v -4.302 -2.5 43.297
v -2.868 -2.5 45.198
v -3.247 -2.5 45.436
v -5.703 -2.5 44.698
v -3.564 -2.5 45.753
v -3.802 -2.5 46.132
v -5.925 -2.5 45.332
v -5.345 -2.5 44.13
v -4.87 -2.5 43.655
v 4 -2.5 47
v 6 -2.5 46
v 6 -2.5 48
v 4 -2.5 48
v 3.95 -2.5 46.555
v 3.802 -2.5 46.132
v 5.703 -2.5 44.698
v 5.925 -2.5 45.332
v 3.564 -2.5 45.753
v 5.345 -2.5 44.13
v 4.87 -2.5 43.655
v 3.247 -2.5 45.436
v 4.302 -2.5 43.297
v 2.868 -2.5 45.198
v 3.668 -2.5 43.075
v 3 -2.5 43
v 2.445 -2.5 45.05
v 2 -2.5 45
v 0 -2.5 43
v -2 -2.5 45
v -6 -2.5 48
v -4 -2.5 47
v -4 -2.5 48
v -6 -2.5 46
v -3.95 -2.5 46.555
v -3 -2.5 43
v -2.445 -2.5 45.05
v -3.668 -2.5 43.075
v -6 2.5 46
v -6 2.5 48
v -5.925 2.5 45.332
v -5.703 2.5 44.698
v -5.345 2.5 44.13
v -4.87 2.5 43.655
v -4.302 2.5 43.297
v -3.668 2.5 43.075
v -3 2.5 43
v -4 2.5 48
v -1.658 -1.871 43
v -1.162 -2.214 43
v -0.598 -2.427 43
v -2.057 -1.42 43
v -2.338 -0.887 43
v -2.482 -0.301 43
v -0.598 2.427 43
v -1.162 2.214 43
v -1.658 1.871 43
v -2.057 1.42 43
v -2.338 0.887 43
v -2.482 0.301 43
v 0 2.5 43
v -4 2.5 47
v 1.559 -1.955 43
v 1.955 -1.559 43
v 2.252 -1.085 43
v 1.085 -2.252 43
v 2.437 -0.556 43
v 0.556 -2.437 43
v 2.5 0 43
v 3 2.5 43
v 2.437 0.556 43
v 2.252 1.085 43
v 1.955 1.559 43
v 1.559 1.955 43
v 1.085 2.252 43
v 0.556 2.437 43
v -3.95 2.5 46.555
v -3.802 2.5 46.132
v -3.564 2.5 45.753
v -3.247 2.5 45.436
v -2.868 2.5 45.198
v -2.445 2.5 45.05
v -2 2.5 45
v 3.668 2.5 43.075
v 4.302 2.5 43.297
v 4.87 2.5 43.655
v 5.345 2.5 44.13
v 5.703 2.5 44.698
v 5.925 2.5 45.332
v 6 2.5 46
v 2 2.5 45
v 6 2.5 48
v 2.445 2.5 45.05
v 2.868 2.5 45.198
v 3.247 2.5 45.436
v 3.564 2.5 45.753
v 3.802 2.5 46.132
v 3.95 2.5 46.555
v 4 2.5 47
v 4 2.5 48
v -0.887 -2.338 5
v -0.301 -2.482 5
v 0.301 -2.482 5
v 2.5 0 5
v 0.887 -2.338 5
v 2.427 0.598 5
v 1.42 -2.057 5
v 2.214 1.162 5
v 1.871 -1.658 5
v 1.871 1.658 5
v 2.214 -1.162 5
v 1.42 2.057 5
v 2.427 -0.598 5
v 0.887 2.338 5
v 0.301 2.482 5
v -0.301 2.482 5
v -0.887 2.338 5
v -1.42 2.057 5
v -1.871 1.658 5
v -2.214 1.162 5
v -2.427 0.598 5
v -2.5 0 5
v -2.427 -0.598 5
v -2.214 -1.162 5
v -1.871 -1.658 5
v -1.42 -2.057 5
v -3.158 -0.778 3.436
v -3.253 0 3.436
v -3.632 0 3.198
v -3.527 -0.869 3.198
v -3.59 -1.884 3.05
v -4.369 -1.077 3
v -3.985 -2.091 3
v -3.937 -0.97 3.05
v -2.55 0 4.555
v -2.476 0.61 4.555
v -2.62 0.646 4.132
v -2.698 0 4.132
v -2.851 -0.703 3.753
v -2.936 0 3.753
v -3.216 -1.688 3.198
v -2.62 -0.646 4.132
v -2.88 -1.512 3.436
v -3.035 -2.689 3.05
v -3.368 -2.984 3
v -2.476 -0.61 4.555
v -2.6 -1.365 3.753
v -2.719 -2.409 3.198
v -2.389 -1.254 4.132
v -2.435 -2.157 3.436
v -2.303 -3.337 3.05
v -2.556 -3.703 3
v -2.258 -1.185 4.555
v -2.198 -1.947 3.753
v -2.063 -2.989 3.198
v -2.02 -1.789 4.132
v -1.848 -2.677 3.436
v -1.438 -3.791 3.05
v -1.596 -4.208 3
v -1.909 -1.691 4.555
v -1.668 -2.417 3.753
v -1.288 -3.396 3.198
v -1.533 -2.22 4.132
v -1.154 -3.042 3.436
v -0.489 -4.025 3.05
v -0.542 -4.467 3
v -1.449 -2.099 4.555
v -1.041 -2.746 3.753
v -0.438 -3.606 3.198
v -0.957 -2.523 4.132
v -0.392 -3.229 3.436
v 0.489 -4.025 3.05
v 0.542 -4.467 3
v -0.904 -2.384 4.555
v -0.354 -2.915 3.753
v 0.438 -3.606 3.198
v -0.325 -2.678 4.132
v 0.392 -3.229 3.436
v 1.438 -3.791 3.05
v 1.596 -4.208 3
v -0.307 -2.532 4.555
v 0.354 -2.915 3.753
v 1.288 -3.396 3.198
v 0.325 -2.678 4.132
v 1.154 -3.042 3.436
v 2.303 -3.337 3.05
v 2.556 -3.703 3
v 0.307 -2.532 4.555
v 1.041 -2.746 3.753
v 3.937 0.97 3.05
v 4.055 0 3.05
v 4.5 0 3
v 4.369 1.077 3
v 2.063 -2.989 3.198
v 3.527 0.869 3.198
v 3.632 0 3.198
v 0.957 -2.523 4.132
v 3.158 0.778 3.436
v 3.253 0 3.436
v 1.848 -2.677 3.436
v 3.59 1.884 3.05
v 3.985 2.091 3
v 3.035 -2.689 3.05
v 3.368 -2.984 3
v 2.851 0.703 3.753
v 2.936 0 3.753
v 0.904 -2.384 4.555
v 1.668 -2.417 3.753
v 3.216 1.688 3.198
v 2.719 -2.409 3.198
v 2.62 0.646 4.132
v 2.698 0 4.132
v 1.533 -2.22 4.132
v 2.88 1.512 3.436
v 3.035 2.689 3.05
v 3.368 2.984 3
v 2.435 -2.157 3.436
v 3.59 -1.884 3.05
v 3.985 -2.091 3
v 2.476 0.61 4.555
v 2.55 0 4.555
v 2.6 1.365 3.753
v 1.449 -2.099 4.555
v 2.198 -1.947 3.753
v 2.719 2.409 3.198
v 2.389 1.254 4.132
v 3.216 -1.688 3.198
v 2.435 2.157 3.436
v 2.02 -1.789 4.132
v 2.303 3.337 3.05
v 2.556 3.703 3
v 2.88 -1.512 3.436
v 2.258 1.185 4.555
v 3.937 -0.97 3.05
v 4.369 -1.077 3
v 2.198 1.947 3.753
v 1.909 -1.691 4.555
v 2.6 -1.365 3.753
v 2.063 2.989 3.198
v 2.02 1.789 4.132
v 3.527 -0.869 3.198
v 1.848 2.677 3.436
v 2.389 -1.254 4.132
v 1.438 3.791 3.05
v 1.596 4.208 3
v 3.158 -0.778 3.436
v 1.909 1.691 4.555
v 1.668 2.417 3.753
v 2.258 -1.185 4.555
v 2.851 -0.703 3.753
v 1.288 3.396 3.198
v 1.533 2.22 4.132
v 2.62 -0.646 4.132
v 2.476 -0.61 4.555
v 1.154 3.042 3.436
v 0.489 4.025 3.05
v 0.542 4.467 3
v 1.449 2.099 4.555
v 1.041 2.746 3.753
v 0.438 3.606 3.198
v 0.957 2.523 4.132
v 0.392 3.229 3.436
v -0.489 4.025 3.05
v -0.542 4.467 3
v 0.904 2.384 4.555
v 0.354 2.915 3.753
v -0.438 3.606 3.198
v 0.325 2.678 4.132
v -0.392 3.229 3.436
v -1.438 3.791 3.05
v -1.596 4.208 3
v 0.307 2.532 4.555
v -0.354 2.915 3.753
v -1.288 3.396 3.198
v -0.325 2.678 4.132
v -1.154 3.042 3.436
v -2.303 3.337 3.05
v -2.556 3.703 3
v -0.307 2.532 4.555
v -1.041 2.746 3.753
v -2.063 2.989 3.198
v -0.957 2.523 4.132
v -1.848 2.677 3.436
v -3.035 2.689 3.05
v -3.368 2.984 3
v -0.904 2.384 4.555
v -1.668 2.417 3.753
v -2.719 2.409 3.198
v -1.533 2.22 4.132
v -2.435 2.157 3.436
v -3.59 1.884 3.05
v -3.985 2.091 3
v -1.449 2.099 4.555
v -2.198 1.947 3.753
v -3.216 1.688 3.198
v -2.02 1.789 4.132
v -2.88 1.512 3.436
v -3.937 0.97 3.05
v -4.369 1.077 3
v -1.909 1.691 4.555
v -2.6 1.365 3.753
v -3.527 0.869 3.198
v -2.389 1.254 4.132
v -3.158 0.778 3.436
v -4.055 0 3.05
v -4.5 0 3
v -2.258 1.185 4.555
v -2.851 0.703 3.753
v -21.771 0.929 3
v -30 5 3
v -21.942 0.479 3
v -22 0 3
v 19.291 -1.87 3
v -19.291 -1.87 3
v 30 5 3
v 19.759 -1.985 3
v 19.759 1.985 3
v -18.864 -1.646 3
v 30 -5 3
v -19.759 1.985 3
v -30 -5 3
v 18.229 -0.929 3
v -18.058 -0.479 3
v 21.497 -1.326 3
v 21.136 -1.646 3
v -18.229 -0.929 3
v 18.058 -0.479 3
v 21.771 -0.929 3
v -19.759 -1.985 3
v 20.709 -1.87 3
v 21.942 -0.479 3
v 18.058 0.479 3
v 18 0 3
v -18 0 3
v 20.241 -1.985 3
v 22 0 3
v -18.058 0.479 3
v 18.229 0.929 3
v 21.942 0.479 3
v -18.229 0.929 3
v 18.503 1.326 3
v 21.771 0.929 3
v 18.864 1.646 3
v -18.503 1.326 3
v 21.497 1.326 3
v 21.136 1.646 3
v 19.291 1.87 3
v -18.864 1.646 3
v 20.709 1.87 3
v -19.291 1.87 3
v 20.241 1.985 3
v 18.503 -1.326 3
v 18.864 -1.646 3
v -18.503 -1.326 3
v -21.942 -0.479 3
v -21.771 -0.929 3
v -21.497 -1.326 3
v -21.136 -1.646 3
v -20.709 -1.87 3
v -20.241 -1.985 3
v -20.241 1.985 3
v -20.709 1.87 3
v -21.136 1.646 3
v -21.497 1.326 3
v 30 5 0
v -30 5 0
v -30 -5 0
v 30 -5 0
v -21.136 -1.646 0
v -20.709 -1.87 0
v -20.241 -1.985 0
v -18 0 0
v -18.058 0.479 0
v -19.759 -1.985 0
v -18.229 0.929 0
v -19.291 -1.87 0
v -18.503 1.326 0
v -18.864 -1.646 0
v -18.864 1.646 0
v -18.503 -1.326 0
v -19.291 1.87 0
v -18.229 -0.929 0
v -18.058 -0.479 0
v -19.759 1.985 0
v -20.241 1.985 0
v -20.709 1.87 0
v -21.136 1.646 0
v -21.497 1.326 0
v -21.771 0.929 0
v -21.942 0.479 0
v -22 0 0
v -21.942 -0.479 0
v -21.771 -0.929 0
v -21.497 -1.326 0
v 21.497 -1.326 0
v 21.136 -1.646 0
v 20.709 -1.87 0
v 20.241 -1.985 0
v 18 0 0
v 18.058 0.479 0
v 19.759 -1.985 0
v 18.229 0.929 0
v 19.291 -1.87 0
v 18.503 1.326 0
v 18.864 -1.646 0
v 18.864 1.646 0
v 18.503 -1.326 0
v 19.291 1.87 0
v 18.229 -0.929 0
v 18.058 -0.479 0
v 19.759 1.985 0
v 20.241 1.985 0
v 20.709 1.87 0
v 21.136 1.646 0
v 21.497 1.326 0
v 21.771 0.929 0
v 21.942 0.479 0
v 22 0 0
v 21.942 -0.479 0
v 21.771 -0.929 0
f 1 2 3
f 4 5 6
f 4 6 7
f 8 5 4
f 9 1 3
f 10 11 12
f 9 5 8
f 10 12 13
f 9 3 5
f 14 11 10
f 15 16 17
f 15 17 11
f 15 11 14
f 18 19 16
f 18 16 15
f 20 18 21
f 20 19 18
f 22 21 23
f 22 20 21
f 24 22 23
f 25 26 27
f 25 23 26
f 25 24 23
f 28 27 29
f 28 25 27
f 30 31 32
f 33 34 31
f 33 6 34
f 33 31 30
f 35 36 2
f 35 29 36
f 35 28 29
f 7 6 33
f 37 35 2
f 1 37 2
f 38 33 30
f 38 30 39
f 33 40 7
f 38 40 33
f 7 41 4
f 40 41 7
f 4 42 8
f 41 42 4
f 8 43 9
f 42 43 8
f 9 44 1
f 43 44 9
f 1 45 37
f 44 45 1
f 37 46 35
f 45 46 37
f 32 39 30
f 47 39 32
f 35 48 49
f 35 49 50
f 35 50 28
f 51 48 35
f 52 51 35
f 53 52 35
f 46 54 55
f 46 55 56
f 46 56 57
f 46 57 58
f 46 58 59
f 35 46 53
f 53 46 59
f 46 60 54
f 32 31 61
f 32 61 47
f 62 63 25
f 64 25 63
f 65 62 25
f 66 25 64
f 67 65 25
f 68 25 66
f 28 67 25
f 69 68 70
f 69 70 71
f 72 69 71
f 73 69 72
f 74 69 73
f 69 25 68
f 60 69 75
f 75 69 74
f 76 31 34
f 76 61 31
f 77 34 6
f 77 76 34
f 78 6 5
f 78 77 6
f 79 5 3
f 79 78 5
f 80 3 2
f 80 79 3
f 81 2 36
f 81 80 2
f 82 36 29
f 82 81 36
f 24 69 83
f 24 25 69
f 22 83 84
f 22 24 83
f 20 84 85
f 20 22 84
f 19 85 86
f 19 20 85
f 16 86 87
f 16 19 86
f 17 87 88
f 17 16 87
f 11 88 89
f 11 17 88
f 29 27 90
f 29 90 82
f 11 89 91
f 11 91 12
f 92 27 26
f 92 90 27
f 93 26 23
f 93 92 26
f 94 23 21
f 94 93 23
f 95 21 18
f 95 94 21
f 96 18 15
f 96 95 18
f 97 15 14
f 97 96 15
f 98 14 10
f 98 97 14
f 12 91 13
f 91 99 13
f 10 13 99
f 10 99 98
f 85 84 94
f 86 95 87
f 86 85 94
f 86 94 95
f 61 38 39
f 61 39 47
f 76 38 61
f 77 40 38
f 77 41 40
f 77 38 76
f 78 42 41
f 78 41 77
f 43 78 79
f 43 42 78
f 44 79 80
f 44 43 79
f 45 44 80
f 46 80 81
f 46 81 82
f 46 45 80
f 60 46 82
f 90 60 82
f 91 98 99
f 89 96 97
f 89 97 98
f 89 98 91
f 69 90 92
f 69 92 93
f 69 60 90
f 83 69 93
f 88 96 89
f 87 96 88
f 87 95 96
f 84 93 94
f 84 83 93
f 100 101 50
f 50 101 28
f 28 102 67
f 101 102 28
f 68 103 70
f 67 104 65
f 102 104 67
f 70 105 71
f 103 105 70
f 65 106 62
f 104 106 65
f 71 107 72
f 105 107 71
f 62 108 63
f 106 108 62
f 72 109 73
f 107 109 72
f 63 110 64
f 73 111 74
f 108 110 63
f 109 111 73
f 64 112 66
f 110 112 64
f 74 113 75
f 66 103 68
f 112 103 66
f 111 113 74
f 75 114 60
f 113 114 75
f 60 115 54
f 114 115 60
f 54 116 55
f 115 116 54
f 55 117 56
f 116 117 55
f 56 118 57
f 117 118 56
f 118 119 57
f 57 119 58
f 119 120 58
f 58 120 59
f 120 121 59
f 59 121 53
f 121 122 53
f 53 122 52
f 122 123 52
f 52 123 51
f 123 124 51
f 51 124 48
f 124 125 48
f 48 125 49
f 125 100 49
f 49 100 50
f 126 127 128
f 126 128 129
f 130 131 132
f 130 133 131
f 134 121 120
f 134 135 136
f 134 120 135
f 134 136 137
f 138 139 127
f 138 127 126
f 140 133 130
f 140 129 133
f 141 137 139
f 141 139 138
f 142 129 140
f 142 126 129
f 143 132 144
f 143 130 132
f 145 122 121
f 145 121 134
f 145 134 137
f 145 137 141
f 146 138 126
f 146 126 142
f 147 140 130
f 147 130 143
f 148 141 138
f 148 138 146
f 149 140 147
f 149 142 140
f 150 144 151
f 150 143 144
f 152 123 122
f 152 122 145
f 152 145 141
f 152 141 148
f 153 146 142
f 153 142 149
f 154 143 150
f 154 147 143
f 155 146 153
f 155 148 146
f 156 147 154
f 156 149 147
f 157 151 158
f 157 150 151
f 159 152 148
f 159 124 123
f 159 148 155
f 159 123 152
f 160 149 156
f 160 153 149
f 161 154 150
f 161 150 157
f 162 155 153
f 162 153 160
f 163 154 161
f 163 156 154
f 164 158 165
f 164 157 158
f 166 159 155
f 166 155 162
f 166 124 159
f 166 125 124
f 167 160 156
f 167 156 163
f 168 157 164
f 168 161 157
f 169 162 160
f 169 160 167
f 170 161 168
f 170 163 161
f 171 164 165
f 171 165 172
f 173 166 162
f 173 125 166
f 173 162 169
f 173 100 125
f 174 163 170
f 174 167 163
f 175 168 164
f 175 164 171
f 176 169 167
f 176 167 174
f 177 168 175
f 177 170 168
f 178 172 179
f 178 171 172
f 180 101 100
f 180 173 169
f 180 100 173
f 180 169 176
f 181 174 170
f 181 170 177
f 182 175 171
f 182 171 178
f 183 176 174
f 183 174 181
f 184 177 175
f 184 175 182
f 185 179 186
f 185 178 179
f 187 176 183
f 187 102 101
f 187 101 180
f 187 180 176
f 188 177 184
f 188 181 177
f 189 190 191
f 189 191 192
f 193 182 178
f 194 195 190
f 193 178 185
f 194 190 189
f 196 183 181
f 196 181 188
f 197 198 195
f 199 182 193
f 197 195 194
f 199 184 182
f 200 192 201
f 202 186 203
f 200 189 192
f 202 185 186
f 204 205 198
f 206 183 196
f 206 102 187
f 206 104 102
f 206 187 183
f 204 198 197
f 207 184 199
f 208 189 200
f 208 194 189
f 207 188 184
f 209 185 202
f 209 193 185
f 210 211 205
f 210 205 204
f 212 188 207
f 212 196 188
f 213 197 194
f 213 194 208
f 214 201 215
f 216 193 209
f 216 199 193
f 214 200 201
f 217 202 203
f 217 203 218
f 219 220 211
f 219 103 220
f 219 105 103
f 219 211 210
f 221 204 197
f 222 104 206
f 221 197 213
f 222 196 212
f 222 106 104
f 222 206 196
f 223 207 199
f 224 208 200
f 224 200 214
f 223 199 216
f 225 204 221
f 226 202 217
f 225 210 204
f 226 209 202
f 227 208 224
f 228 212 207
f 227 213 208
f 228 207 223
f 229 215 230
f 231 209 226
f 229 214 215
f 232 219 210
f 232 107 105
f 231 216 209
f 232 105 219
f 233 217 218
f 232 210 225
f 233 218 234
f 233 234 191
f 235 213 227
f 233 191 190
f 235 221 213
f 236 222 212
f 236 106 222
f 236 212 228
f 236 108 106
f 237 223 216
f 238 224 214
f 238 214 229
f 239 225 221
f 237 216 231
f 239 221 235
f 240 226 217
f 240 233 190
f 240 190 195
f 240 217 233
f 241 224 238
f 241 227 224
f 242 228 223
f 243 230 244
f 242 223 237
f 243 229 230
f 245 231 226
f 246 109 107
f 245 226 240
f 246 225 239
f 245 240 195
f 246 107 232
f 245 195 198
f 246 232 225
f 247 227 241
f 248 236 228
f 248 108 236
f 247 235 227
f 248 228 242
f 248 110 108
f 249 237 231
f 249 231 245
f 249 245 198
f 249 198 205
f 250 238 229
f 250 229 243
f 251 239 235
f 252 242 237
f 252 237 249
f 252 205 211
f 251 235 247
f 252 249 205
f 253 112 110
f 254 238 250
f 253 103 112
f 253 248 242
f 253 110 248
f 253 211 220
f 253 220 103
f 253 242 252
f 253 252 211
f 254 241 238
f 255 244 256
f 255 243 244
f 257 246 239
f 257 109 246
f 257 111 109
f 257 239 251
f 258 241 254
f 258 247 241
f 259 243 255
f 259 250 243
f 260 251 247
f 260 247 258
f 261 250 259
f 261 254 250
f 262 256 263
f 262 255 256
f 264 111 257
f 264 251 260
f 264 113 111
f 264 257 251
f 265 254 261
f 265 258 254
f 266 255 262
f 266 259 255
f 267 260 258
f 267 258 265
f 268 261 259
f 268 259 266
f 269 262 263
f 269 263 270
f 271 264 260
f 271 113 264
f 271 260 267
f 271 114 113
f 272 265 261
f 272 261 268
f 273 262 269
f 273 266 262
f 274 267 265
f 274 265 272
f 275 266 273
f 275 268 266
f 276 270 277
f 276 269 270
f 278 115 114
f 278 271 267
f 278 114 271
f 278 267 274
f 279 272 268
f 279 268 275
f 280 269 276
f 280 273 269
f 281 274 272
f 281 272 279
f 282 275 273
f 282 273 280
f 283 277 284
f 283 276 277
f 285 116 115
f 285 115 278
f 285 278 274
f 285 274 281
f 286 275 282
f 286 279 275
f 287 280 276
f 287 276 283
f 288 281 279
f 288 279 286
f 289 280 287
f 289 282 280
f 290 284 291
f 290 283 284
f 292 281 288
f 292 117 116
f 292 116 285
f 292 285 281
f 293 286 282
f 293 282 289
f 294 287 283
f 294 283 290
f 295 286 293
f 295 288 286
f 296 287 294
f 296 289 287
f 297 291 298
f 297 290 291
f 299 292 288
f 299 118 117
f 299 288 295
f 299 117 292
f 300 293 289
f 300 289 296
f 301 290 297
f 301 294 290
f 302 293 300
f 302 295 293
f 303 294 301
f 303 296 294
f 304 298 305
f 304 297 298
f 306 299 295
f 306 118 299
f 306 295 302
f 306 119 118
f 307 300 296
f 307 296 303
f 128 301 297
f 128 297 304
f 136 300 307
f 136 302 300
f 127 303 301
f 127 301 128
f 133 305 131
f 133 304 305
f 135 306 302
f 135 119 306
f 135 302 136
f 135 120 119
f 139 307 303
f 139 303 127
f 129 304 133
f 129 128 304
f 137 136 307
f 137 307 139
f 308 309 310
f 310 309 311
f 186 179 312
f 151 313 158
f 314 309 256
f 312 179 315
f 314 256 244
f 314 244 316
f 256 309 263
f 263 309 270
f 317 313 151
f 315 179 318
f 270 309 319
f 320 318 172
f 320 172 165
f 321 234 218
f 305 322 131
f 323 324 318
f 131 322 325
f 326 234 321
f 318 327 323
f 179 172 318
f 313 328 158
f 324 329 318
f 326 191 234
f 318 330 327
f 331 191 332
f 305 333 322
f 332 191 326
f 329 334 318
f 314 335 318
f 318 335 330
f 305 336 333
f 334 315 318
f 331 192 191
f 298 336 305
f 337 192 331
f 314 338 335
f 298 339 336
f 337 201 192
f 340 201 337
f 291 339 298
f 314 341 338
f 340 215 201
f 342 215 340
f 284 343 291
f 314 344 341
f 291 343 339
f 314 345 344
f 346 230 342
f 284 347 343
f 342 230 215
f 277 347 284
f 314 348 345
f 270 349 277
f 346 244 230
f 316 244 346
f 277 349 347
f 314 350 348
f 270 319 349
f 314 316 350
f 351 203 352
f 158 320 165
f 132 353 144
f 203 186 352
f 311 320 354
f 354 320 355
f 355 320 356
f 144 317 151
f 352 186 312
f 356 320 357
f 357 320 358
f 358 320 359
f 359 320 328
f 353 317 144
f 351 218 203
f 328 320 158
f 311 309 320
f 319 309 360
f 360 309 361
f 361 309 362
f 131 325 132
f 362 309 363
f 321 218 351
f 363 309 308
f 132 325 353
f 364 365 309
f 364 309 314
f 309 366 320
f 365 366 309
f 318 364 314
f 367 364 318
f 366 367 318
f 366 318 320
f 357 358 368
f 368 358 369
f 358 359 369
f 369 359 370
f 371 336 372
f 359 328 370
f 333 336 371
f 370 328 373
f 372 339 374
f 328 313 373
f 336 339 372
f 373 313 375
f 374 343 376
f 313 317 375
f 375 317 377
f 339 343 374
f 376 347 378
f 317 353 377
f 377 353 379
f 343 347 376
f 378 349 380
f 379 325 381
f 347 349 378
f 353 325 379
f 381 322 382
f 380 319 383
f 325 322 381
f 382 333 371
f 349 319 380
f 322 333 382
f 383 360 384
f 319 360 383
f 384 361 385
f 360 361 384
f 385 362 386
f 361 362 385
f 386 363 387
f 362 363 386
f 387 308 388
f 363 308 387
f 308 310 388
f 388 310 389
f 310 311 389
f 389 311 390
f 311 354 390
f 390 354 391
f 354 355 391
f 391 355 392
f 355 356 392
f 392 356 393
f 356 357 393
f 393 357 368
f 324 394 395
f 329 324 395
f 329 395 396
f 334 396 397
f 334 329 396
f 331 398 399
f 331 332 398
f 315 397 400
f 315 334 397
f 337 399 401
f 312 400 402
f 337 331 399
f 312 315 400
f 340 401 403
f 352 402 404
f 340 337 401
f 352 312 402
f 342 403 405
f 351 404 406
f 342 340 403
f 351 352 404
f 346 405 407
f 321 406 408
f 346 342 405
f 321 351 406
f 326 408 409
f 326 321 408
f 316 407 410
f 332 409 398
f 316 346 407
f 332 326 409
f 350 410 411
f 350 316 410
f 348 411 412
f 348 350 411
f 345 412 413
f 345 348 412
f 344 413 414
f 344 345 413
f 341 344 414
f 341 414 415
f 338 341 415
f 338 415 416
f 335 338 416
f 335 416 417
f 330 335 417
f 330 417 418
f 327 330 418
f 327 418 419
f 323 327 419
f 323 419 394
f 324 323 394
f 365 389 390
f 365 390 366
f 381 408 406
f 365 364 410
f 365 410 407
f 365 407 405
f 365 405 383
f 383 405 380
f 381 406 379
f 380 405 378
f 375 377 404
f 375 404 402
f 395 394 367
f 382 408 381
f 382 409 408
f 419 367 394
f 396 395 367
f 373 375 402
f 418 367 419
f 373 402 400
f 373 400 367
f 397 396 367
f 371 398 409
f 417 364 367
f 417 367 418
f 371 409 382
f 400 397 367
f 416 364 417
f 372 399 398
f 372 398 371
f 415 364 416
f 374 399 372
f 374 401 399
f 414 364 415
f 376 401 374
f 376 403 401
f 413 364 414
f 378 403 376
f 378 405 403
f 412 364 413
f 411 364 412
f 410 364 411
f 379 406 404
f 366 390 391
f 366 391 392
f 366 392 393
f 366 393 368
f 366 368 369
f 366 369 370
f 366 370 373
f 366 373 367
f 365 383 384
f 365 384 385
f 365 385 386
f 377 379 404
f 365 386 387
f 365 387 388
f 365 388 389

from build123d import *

# Parameters (mm, degrees)
SKETCH_W        = 60
SKETCH_H        = 10
PAD_DEPTH       = 3
SKETCH001_R     = 2
POCKET_DEPTH    = 124.80412
SKETCH002_R     = 2.5
PAD001_DEPTH    = 40
FILLET_R        = 2
SKETCH003_W     = 12
SKETCH003_H     = 5
PAD002_DEPTH    = 5
SKETCH004_W     = 8
SKETCH004_H     = 3
POCKET001_DEPTH = 7.501
FILLET001_R     = 2
FILLET002_R     = 3


with BuildPart() as part:
    # Sketch → Pad (new body)
    with BuildSketch(Plane.XY):
        Rectangle(SKETCH_W, SKETCH_H)
    extrude(amount=PAD_DEPTH)

    # Sketch001 (on Face6 of Pad) → Pocket (cut, through all)
    with BuildSketch(Plane.XY.offset(3)):
        with Locations((-20, 0)):
            Circle(SKETCH001_R)
    pocket = extrude(amount=-POCKET_DEPTH, mode=Mode.SUBTRACT)

    # Mirrored: Pocket across Sketch001 V_Axis
    add(pocket.mirror(Plane(origin=(0, 0, 3), x_dir=(0, 0, 1), z_dir=(1, 0, 0))), mode=Mode.SUBTRACT)

    # Sketch002 (on Face5 of Mirrored) → Pad001 (join)
    with BuildSketch(Plane.XY.offset(3)):
        Circle(SKETCH002_R)
    extrude(amount=PAD001_DEPTH)

    # Fillet
    fillet_edges = [part.edges().sort_by_distance(p)[0] for p in [
        (-2.5, 0, 3),
    ]]
    fillet(fillet_edges, radius=FILLET_R)

    # Sketch003 (on Face11 of Fillet) → Pad002 (join)
    with BuildSketch(Plane.XY.offset(43)):
        Rectangle(SKETCH003_W, SKETCH003_H)
    extrude(amount=PAD002_DEPTH)

    # Sketch004 (on Face13 of Pad002) → Pocket001 (cut, through all)
    with BuildSketch(Plane.XZ.offset(2.5)):
        with Locations((0, 46.5)):
            Rectangle(SKETCH004_W, SKETCH004_H)
    extrude(amount=-POCKET001_DEPTH, mode=Mode.SUBTRACT)

    # Fillet001
    fillet001_edges = [part.edges().sort_by_distance(p)[0] for p in [
        (4, 0, 45),
        (-4, 0, 45),
    ]]
    fillet(fillet001_edges, radius=FILLET001_R)

    # Fillet002
    fillet002_edges = [part.edges().sort_by_distance(p)[0] for p in [
        (-6, 0, 43),
        (6, 0, 43),
    ]]
    fillet(fillet002_edges, radius=FILLET002_R)


solid = part.part
